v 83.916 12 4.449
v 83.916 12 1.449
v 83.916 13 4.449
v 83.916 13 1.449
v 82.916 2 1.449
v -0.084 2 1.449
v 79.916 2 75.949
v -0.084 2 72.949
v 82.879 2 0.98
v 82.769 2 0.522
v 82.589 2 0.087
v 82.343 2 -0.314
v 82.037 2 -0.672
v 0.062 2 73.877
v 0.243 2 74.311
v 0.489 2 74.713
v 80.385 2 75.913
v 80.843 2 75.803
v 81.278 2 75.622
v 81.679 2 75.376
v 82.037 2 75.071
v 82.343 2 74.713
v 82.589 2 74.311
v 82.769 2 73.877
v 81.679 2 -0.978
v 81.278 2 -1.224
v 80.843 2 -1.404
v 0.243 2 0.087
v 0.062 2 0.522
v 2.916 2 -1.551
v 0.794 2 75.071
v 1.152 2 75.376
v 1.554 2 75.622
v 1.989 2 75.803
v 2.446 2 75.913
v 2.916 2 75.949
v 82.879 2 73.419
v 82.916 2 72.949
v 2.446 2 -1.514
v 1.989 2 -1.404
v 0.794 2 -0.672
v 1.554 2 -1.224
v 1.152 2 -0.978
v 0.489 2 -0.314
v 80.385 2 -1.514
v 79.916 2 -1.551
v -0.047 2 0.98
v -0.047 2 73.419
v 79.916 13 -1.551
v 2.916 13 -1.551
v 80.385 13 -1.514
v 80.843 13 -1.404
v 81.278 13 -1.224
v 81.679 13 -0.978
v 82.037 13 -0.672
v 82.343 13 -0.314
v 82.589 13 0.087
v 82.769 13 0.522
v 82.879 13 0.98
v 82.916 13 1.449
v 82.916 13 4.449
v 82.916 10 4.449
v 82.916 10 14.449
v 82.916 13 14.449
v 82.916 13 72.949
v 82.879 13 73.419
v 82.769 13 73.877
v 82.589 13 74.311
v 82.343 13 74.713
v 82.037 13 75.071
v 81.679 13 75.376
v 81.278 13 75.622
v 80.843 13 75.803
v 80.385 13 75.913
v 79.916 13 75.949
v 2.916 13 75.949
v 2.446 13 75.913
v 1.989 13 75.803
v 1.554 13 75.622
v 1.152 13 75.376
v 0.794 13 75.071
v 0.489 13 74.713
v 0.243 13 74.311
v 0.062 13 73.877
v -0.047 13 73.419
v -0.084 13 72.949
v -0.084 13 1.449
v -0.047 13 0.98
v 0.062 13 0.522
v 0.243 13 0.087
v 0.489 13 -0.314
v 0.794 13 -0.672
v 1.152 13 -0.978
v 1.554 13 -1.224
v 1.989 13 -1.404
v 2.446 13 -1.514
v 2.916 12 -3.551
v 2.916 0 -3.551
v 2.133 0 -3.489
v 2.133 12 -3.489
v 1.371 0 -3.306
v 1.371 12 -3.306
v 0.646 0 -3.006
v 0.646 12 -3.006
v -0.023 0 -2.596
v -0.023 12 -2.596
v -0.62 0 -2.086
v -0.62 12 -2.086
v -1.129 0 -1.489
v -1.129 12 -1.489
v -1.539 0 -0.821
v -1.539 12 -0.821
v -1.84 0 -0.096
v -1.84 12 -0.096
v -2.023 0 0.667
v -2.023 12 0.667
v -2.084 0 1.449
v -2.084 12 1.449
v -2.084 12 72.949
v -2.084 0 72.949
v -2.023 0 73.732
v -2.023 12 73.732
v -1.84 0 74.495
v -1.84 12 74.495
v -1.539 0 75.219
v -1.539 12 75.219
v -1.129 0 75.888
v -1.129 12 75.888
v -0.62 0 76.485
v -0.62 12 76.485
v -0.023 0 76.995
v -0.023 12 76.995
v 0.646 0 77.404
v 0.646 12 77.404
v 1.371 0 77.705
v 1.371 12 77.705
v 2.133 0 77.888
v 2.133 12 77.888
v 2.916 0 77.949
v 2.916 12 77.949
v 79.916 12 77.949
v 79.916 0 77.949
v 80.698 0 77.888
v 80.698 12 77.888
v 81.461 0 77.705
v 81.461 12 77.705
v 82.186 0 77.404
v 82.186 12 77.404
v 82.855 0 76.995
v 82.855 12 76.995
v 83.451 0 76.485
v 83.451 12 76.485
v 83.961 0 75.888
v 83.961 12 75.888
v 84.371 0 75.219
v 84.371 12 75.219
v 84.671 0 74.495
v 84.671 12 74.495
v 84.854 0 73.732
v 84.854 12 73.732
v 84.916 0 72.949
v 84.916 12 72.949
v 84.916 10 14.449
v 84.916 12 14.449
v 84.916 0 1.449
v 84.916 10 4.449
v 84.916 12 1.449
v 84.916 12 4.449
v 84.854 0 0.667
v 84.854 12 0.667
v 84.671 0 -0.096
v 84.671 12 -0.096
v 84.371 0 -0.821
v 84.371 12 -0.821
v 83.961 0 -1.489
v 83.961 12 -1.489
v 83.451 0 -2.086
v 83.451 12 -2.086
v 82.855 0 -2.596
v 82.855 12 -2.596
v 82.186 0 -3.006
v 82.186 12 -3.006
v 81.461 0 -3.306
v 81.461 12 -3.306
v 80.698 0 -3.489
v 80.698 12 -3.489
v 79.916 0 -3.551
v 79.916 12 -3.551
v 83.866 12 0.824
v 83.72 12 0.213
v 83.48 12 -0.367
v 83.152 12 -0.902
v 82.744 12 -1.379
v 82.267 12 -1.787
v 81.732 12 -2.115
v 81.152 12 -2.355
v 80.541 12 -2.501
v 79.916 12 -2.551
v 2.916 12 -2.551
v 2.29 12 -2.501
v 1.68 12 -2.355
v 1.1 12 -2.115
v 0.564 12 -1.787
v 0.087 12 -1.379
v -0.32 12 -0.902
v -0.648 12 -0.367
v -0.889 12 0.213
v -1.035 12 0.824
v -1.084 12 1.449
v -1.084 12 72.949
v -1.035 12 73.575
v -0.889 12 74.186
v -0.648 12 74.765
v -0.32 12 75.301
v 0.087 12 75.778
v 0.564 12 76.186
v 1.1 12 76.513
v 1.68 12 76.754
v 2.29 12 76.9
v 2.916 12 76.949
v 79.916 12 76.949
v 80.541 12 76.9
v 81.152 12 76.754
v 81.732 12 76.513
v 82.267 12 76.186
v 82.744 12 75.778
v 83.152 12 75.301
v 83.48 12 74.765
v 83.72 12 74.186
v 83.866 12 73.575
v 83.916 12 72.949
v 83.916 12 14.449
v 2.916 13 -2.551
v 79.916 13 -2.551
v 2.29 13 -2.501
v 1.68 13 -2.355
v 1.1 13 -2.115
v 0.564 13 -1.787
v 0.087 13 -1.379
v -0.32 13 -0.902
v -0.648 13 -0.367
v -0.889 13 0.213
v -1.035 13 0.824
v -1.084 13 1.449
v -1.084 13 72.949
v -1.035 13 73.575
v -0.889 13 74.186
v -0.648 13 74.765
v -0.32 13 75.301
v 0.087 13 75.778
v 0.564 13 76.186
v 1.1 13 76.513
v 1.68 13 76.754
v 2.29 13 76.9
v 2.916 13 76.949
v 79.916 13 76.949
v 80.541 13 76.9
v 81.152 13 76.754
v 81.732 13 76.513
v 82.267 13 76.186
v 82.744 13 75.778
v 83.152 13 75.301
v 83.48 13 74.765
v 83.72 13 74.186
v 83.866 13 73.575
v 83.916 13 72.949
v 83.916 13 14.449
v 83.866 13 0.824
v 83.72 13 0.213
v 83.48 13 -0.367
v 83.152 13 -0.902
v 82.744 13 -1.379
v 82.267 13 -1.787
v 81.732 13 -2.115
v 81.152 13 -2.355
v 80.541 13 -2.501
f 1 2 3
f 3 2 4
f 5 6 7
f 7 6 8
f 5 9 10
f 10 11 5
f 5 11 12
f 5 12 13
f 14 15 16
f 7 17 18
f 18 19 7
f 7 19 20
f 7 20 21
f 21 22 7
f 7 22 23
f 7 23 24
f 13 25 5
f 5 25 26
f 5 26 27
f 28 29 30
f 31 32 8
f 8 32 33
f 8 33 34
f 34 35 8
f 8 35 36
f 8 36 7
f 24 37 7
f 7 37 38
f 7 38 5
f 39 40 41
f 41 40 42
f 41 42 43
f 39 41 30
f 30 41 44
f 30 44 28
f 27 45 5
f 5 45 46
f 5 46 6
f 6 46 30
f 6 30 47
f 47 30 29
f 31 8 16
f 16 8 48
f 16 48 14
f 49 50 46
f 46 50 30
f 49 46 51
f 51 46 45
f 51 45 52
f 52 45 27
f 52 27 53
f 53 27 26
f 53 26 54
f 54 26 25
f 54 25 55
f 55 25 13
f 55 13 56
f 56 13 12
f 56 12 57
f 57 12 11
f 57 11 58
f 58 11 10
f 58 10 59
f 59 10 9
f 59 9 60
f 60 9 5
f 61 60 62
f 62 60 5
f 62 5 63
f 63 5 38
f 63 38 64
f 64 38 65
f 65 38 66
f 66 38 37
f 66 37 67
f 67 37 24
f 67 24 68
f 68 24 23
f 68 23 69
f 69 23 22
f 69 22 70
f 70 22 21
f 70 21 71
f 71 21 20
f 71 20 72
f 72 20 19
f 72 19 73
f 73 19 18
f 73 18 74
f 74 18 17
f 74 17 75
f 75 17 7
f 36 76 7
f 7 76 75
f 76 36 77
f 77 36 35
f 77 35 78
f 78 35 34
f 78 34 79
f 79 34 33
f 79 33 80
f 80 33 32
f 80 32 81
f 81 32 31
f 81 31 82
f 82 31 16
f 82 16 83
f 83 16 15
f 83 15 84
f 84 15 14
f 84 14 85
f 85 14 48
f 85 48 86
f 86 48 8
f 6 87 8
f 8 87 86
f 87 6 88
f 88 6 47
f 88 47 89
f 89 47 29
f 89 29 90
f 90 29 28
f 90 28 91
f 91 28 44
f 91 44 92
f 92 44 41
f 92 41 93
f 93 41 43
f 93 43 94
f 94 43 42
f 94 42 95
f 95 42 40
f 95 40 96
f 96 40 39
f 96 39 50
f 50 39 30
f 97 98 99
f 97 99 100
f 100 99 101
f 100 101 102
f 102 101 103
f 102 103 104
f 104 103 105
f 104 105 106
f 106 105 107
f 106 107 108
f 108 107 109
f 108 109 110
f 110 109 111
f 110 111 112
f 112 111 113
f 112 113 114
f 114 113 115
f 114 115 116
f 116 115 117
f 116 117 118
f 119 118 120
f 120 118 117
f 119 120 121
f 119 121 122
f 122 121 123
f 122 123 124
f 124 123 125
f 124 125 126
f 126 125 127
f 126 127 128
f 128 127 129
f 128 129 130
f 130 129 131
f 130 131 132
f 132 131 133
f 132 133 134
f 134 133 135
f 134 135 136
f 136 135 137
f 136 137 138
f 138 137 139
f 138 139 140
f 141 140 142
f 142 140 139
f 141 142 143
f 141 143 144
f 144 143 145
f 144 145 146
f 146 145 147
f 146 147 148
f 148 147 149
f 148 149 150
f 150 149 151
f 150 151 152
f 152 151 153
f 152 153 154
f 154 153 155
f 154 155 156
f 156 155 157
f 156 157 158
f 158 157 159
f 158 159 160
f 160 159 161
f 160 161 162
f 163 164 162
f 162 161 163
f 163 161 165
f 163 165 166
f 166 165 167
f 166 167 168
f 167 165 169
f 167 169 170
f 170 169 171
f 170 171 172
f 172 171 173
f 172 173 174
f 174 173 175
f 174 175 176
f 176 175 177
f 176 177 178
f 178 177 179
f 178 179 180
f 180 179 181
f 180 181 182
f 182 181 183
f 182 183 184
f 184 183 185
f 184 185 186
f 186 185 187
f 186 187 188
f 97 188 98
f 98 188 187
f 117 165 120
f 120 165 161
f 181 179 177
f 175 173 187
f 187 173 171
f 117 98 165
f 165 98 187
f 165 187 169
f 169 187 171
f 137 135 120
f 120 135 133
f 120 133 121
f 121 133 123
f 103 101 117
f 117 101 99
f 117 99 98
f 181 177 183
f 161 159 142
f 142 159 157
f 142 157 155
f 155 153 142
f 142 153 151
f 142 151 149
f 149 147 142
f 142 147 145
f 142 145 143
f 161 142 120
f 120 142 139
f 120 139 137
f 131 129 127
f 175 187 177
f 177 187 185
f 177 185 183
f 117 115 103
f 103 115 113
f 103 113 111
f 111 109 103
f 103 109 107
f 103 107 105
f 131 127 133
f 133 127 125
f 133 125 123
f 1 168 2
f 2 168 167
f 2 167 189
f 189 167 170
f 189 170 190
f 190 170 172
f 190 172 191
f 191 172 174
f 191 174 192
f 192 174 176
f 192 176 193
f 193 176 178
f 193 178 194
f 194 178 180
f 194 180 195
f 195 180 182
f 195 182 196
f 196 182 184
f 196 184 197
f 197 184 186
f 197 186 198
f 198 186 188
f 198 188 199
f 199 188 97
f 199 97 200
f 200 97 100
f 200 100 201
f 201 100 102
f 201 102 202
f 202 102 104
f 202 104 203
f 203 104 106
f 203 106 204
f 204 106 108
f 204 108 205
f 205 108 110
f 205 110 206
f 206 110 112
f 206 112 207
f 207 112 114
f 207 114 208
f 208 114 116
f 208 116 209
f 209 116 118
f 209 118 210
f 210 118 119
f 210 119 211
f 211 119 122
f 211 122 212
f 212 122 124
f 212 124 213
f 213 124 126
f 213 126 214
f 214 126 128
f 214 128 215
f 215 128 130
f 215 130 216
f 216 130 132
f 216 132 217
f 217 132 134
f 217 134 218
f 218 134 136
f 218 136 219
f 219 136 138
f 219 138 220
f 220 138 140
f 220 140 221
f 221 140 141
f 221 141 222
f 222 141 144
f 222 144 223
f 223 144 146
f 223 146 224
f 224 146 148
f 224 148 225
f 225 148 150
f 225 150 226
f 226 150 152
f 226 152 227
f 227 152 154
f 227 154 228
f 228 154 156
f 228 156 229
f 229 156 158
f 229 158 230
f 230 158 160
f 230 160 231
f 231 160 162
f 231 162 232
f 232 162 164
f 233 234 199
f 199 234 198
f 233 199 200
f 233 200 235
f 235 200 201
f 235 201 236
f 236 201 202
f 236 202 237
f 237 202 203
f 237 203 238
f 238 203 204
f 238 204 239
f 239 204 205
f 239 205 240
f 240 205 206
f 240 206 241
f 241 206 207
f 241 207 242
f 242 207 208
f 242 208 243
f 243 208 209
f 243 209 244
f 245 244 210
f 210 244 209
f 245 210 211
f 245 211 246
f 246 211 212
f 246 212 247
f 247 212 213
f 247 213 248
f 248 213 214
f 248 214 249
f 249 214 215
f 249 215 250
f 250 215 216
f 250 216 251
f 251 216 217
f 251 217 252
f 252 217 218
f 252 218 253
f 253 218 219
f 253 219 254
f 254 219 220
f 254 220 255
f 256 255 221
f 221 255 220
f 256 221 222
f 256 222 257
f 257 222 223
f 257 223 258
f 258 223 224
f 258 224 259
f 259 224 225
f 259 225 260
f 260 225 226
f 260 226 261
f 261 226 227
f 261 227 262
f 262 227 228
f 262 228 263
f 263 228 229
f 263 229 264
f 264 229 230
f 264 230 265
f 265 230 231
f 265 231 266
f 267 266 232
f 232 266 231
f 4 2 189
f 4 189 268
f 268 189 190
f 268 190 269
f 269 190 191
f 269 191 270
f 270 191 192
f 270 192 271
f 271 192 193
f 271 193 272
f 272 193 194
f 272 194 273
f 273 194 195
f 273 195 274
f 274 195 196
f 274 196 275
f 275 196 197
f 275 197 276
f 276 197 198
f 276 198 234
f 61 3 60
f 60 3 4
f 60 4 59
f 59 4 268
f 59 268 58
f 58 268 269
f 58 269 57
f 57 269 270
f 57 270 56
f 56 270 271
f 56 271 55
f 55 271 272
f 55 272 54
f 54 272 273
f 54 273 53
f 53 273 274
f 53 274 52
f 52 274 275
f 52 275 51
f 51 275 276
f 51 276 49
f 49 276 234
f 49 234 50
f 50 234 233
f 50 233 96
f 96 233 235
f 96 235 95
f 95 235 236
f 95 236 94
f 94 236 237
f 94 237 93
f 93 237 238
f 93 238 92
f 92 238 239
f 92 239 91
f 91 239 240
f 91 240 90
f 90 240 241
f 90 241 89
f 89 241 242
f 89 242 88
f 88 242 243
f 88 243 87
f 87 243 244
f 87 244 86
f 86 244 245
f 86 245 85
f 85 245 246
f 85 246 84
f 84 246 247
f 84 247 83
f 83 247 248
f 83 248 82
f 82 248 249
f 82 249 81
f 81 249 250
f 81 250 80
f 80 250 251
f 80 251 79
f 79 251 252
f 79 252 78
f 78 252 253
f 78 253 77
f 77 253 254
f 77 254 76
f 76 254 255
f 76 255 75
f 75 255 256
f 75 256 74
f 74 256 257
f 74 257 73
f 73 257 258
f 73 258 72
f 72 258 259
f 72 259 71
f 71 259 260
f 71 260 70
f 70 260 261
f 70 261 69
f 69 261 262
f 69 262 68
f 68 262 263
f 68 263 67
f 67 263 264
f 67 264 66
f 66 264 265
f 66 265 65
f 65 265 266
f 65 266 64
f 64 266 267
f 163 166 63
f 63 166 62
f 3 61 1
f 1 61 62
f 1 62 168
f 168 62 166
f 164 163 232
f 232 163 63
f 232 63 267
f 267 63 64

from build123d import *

# Parameters (mm, degrees)
EXTRUDE_4_DEPTH     = 2
EXTRUDE_5_DEPTH     = 12
EXTRUDE_START       = -12
EXTRUDE_7_DEPTH     = 1
CUT_EXTRUDE_START   = 2
CUT_EXTRUDE_4_DEPTH = 11
CUT_EXTRUDE_5_REACH = 119.533
SKETCH_4_W          = 10
SKETCH_4_H          = 5


with BuildPart() as part:
    # Эскиз1 → Бобышка-Вытянуть4 (new body)
    with BuildSketch(Plane(origin=(0, 0, 0), x_dir=(1, 0, 0), z_dir=(0, 1, 0))):
        with BuildLine():
            Line((-2.084374602, -1.449446306), (-2.084374602, -72.949446306))
            ThreePointArc((-2.084374602, -72.949446306), (-0.619908508, -76.484980212), (2.915625398, -77.949446306))
            Line((2.915625398, -77.949446306), (79.915625398, -77.949446306))
            ThreePointArc((79.915625398, -77.949446306), (83.451159304, -76.484980212), (84.915625398, -72.949446306))
            Line((84.915625398, -72.949446306), (84.915625398, -1.449446306))
            ThreePointArc((84.915625398, -1.449446306), (83.451159304, 2.0860876), (79.915625398, 3.550553694))
            Line((79.915625398, 3.550553694), (2.915625398, 3.550553694))
            ThreePointArc((2.915625398, 3.550553694), (-0.619908508, 2.0860876), (-2.084374602, -1.449446306))
        make_face()
    extrude(amount=EXTRUDE_4_DEPTH)

    # Эскиз1<9> → Бобышка-Вытянуть5 (add)
    with BuildSketch(Plane(origin=(0, 0, 0), x_dir=(1, 0, 0), z_dir=(0, 1, 0))):
        with BuildLine():
            Line((-2.084374602, -1.449446306), (-2.084374602, -72.949446306))
            ThreePointArc((-2.084374602, -72.949446306), (-0.619908508, -76.484980212), (2.915625398, -77.949446306))
            Line((2.915625398, -77.949446306), (79.915625398, -77.949446306))
            ThreePointArc((79.915625398, -77.949446306), (83.451159304, -76.484980212), (84.915625398, -72.949446306))
            Line((84.915625398, -72.949446306), (84.915625398, -1.449446306))
            ThreePointArc((84.915625398, -1.449446306), (83.451159304, 2.0860876), (79.915625398, 3.550553694))
            Line((79.915625398, 3.550553694), (2.915625398, 3.550553694))
            ThreePointArc((2.915625398, 3.550553694), (-0.619908508, 2.0860876), (-2.084374602, -1.449446306))
        make_face()
        with BuildLine():
            Line((-0.084374602, -1.449446306), (-0.084374602, -72.949446306))
            ThreePointArc((-0.084374602, -72.949446306), (0.794305055, -75.070766649), (2.915625398, -75.949446306))
            Line((2.915625398, -75.949446306), (79.915625398, -75.949446306))
            ThreePointArc((79.915625398, -75.949446306), (82.036945742, -75.070766649), (82.915625398, -72.949446306))
            Line((82.915625398, -72.949446306), (82.915625398, -1.449446306))
            ThreePointArc((82.915625398, -1.449446306), (82.036945742, 0.671874038), (79.915625398, 1.550553694))
            Line((79.915625398, 1.550553694), (2.915625398, 1.550553694))
            ThreePointArc((2.915625398, 1.550553694), (0.794305055, 0.671874038), (-0.084374602, -1.449446306))
        make_face(mode=Mode.SUBTRACT)
    extrude(amount=EXTRUDE_5_DEPTH)

    # Эскиз3 → Бобышка-Вытянуть7 (add)
    with BuildSketch(Plane.XZ.offset(EXTRUDE_START)):
        with BuildLine():
            Line((2.915625398, -2.550553694), (79.915625398, -2.550553694))
            ThreePointArc((79.915625398, -2.550553694), (82.744052523, -1.378980819), (83.915625398, 1.449446306))
            Line((83.915625398, 1.449446306), (83.915625398, 72.949446306))
            ThreePointArc((83.915625398, 72.949446306), (82.744052523, 75.777873431), (79.915625398, 76.949446306))
            Line((79.915625398, 76.949446306), (2.915625398, 76.949446306))
            ThreePointArc((2.915625398, 76.949446306), (0.087198273, 75.777873431), (-1.084374602, 72.949446306))
            Line((-1.084374602, 72.949446306), (-1.084374602, 1.449446306))
            ThreePointArc((-1.084374602, 1.449446306), (0.087198273, -1.378980819), (2.915625398, -2.550553694))
        make_face()
    extrude(amount=-EXTRUDE_7_DEPTH)

    # Эскиз1<13> → Вырез-Вытянуть4 (cut)
    with BuildSketch(Plane(origin=(0, 0, 0), x_dir=(1, 0, 0), z_dir=(0, 1, 0)).offset(CUT_EXTRUDE_START)):
        with BuildLine():
            Line((-0.084374602, -1.449446306), (-0.084374602, -72.949446306))
            ThreePointArc((-0.084374602, -72.949446306), (0.794305055, -75.070766649), (2.915625398, -75.949446306))
            Line((2.915625398, -75.949446306), (79.915625398, -75.949446306))
            ThreePointArc((79.915625398, -75.949446306), (82.036945742, -75.070766649), (82.915625398, -72.949446306))
            Line((82.915625398, -72.949446306), (82.915625398, -1.449446306))
            ThreePointArc((82.915625398, -1.449446306), (82.036945742, 0.671874038), (79.915625398, 1.550553694))
            Line((79.915625398, 1.550553694), (2.915625398, 1.550553694))
            ThreePointArc((2.915625398, 1.550553694), (0.794305055, 0.671874038), (-0.084374602, -1.449446306))
        make_face()
    extrude(amount=CUT_EXTRUDE_4_DEPTH, mode=Mode.SUBTRACT)

    # Эскиз4 → Вырез-Вытянуть5 (cut, up to next)
    with BuildSketch(Plane(origin=(84.915625398, 0, 0), x_dir=(0, 0, -1), z_dir=(1, 0, 0)), mode=Mode.PRIVATE) as cut_extrude_5_sk1:
        with Locations((-9.449446306, 12.5)):
            Rectangle(SKETCH_4_W, SKETCH_4_H)
    cut_extrude_5_tool1 = extrude(cut_extrude_5_sk1.sketch, amount=-CUT_EXTRUDE_5_REACH, mode=Mode.PRIVATE) & part.part
    add(cut_extrude_5_tool1.solids().sort_by_distance((84.915625, 12.5, 9.449446))[0], mode=Mode.SUBTRACT)


solid = part.part
